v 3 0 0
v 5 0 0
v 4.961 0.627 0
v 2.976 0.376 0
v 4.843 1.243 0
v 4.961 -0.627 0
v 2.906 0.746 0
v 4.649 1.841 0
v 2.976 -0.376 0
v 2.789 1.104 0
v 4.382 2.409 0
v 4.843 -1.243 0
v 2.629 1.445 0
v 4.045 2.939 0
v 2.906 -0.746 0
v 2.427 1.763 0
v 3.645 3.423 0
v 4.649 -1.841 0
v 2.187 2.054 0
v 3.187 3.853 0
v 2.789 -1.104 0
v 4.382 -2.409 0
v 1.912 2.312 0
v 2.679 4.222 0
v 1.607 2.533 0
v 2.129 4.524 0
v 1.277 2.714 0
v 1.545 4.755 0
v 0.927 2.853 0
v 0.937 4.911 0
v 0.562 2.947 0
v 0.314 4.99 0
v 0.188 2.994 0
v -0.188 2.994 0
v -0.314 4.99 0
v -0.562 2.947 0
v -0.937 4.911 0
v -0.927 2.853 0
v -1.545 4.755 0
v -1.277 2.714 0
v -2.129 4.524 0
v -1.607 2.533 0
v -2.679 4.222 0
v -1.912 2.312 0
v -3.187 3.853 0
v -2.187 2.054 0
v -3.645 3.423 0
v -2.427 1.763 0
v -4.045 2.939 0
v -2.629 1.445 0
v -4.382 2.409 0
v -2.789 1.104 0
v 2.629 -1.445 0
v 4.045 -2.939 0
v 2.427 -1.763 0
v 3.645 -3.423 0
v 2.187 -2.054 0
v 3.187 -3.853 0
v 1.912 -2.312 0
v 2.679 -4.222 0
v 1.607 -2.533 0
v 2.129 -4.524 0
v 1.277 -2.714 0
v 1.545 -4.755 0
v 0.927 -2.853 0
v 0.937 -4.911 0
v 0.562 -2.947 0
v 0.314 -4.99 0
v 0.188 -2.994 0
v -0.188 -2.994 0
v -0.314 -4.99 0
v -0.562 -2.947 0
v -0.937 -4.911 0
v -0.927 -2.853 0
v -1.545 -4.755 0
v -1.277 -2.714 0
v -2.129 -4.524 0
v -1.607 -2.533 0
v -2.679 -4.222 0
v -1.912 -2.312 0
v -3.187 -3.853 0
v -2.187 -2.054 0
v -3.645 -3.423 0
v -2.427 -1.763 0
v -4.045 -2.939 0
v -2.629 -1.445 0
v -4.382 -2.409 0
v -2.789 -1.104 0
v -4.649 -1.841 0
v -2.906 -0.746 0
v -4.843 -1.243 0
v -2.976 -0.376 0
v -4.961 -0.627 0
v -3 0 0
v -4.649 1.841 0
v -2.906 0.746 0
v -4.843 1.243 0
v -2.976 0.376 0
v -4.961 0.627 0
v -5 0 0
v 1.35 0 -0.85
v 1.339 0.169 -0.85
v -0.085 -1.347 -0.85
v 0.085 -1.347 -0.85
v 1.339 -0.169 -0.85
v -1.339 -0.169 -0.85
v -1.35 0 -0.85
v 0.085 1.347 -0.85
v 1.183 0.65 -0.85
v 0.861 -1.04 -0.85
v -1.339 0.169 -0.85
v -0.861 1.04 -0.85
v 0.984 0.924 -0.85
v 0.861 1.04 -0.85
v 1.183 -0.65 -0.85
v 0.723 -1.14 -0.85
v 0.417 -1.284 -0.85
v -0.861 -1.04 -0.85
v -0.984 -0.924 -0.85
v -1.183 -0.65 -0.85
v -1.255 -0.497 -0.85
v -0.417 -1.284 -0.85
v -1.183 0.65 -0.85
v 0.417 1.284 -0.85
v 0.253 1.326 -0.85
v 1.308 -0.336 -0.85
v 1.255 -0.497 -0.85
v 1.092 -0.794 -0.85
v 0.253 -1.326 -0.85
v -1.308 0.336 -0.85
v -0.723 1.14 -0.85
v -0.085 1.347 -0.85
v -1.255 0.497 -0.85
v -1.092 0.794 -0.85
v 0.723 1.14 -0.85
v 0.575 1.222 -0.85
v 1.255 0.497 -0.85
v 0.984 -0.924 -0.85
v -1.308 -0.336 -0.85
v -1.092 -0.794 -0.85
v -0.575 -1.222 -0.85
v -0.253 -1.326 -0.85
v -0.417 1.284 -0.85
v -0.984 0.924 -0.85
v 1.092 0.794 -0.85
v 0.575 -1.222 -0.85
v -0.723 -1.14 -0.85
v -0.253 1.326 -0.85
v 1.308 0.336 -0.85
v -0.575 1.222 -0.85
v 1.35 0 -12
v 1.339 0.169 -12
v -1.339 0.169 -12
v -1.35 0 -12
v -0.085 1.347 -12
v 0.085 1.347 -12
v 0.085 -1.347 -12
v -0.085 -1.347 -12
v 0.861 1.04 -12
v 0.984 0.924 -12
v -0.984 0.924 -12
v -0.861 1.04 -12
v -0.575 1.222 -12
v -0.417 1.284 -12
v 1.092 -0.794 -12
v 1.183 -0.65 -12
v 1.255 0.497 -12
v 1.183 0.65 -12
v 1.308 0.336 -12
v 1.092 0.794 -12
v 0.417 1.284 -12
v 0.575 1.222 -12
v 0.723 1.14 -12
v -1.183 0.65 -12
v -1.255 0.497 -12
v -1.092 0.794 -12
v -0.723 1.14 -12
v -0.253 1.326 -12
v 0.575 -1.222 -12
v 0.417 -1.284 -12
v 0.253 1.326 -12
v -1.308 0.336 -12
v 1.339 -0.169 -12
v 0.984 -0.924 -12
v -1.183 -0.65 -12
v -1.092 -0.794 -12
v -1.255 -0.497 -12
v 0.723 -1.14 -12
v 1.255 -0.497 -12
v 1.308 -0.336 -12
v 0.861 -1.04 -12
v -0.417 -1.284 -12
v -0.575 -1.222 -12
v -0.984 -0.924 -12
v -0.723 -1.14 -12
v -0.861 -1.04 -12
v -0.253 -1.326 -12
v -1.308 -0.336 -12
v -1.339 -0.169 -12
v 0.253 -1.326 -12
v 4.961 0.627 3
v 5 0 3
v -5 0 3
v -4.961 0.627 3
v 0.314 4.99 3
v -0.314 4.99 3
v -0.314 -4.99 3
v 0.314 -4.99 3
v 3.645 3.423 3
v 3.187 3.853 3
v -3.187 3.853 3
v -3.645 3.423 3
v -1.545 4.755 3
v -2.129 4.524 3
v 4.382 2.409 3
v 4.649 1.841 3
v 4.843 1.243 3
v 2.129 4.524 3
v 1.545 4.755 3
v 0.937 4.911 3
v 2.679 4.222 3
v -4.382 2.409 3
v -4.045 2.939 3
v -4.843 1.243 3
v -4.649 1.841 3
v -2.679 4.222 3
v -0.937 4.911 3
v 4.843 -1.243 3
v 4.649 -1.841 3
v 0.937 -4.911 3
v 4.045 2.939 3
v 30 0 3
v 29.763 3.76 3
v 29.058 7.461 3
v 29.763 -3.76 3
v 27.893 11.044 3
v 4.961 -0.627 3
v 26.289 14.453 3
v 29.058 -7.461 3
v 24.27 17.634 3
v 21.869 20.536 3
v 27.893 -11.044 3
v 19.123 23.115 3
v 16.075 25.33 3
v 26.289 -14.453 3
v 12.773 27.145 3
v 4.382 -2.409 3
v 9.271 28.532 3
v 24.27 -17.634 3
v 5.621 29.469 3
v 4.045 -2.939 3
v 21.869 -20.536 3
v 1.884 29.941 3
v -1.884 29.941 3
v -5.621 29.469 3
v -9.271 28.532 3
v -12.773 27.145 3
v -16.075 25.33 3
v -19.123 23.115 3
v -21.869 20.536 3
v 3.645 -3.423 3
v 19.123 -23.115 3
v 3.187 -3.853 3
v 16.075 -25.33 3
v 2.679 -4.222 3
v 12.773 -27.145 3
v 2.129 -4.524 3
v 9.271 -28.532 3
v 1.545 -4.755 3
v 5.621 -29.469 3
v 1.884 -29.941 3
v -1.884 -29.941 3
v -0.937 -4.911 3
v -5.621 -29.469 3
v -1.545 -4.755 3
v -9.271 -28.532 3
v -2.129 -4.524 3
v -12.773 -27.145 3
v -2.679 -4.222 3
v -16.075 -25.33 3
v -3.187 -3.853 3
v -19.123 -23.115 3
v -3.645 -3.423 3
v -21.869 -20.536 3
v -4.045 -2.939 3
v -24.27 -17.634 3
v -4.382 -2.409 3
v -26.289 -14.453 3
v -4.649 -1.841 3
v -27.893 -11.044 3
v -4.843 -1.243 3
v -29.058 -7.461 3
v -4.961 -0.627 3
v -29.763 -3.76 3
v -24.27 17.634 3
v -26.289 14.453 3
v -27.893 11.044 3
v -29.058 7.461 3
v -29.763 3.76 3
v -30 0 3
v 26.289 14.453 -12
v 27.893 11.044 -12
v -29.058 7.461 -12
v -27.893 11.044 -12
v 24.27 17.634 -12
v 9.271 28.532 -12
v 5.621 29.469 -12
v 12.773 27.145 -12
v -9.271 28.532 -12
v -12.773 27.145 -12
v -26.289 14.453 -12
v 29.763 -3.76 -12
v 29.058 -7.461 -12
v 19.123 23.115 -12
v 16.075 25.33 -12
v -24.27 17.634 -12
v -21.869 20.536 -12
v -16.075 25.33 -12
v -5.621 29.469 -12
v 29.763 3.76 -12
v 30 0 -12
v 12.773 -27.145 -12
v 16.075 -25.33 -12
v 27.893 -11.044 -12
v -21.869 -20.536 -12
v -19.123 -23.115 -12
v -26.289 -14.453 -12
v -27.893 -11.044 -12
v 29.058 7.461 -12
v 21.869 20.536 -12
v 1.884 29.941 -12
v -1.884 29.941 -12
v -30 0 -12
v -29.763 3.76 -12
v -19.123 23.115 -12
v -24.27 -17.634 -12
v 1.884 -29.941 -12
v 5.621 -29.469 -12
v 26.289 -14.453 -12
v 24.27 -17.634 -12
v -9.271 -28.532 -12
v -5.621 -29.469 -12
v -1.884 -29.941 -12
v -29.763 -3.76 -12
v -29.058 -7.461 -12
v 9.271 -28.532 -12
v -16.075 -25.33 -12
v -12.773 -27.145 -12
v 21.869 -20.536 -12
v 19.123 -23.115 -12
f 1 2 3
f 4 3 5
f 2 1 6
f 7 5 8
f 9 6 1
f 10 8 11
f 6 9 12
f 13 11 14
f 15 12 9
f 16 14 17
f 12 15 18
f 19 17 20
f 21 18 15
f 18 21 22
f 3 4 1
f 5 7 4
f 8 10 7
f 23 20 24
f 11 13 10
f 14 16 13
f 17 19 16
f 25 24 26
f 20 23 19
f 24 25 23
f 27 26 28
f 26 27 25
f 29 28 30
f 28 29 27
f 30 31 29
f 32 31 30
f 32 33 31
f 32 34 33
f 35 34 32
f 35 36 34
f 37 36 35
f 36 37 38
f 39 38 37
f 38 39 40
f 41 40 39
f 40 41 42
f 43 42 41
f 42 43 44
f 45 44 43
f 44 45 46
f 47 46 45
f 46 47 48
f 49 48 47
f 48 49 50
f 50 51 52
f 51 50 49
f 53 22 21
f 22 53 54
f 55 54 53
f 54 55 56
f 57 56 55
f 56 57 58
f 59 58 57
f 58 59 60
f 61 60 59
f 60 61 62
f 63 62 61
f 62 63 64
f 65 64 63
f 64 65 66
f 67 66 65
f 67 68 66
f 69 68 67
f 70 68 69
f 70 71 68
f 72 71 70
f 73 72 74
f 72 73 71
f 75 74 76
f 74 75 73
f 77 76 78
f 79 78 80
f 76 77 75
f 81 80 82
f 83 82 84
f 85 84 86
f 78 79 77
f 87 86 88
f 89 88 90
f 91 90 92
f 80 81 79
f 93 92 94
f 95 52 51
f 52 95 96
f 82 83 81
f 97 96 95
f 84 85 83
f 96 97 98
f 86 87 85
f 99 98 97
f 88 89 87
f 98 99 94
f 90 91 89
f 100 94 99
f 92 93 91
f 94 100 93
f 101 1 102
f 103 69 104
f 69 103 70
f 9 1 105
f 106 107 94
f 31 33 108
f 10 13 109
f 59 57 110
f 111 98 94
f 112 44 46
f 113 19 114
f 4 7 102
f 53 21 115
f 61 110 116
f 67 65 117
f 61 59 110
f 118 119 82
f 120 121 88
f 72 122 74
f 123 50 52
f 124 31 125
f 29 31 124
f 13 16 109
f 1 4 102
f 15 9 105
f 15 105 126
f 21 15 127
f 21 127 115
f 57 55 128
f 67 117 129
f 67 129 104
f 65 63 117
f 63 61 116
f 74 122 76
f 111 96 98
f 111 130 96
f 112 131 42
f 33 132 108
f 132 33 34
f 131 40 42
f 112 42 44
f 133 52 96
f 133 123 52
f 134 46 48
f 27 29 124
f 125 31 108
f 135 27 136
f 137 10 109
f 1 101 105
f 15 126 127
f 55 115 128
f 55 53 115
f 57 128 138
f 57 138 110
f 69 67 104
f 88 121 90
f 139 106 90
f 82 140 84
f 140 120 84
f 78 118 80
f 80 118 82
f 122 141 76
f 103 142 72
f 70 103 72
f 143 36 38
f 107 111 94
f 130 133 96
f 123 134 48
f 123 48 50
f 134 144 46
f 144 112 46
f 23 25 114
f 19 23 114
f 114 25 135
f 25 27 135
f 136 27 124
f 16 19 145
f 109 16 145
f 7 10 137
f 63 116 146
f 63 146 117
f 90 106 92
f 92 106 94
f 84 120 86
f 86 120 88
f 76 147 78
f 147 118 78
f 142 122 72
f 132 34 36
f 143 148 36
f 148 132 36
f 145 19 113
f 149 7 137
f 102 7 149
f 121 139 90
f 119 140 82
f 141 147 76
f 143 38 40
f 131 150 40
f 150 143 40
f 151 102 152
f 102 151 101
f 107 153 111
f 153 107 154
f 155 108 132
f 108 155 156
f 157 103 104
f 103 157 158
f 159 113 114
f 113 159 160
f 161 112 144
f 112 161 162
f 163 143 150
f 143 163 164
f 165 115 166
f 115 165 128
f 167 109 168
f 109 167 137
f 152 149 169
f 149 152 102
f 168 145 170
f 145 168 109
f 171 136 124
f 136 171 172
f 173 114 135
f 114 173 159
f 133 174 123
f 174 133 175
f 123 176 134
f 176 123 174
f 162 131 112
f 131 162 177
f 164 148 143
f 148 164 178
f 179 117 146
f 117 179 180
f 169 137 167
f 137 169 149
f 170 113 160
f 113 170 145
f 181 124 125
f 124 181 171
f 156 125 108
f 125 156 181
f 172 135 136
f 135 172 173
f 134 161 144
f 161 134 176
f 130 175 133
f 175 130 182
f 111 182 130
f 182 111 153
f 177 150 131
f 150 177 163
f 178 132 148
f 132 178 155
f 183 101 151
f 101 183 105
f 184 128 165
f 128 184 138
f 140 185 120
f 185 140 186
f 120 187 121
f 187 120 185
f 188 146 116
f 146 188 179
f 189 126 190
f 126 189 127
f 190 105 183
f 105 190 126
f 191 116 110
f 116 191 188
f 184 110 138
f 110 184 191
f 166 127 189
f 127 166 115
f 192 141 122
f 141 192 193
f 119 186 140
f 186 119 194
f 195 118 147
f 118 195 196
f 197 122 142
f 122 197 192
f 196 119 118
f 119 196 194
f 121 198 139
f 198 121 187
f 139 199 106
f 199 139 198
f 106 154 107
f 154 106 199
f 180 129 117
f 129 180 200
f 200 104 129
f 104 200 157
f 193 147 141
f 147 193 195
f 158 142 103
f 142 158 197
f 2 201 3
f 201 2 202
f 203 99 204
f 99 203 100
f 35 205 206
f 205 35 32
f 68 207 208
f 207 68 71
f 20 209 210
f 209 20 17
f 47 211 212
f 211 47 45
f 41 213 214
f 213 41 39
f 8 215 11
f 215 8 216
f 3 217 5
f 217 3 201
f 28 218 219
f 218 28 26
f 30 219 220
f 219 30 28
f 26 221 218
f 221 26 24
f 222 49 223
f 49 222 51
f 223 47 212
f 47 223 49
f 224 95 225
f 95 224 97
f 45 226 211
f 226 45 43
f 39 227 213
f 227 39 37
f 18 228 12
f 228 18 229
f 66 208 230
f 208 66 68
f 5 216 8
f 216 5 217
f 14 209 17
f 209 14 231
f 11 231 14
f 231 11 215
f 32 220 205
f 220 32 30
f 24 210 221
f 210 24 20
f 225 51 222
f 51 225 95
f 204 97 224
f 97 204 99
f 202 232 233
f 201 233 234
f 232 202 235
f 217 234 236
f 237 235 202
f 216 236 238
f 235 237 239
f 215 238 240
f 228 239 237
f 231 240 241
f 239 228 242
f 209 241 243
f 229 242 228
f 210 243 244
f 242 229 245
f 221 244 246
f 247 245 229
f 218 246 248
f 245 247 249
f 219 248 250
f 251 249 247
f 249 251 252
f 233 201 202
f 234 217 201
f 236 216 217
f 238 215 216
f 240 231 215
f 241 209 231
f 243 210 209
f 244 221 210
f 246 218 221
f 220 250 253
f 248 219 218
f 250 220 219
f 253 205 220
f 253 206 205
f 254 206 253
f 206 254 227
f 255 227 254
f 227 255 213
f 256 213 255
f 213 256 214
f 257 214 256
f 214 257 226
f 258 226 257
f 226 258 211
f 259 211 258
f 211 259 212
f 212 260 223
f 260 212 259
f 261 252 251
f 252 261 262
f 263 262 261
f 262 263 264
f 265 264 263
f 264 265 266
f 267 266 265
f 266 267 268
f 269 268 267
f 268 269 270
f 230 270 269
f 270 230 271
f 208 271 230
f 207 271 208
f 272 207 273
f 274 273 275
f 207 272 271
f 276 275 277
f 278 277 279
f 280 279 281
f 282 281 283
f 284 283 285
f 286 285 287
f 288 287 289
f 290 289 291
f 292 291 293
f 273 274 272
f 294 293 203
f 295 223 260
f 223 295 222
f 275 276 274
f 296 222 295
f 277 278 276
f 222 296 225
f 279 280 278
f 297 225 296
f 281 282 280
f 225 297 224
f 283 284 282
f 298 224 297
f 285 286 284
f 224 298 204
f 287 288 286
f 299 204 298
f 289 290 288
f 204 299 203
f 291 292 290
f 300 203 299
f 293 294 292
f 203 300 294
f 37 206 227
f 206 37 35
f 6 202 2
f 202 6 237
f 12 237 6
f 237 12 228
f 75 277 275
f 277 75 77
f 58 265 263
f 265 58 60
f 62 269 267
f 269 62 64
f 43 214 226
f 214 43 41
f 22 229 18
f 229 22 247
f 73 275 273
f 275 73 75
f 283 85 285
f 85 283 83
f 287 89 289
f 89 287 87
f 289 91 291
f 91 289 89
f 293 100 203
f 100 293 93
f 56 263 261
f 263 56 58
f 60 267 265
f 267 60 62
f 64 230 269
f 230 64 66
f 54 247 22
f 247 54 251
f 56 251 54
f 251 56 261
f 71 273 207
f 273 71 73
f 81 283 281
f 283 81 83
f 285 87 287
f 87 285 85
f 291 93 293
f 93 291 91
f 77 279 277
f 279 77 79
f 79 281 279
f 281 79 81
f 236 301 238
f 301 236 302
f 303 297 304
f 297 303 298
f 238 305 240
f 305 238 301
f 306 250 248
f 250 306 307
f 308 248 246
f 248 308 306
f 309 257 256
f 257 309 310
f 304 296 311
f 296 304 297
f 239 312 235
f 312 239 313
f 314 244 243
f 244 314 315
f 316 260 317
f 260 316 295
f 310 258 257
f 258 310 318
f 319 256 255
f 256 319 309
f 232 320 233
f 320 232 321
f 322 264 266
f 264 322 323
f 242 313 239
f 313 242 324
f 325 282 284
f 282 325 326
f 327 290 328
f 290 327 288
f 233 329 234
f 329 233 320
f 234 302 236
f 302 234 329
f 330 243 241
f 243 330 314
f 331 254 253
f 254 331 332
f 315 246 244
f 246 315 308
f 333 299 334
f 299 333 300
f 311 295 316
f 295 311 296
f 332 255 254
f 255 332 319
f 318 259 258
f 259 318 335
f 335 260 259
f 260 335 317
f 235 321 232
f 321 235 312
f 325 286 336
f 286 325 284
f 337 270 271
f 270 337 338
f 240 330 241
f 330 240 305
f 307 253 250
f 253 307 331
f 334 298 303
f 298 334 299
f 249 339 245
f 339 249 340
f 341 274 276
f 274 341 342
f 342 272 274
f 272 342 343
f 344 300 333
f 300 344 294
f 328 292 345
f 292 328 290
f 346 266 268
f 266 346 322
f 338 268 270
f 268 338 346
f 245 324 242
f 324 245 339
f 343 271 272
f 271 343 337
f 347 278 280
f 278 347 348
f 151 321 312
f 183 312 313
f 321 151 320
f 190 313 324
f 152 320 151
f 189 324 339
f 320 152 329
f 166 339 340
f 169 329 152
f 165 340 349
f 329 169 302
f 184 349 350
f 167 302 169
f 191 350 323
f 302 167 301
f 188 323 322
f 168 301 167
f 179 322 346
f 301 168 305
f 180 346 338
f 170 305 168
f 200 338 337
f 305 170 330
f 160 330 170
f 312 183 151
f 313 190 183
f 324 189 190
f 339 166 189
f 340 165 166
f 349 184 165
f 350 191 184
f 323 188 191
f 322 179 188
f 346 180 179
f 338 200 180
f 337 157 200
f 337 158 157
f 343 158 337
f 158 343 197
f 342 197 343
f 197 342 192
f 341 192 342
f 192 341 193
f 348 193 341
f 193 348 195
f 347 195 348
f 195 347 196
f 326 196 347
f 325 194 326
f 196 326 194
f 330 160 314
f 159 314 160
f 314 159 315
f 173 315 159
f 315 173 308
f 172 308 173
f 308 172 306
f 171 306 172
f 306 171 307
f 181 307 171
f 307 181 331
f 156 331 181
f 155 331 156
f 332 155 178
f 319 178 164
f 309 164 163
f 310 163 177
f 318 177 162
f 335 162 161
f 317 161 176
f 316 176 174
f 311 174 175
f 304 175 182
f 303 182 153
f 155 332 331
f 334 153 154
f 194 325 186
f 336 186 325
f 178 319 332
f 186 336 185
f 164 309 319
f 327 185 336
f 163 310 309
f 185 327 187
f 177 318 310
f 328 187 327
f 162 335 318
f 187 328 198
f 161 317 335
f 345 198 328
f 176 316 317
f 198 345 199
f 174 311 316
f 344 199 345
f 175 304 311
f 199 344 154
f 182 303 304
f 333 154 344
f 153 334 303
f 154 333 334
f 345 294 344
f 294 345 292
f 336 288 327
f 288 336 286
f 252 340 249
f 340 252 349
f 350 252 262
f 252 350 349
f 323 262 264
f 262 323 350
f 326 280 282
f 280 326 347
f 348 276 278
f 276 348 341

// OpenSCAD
$fn = 50;

difference() {
	union() {
		translate(v = [0, 0, -12.0]) {
			cylinder(h = 15, r = 30.0);
		}
	}
	union() {
		translate(v = [0, 0, 0]) {
			rotate(a = [0, 0, 0]) {
				difference() {
					union() {
						translate(v = [0, 0, -15.0]) {
							cylinder(h = 15, r = 1.0);
						}
						translate(v = [0, 0, -0.85]) {
							cylinder(h = 0.85, r1 = 1.35, r2 = 3.0);
						}
						translate(v = [0, 0, -15.0]) {
							cylinder(h = 15, r = 1.35);
						}
						translate(v = [0, 0, -15.0]) {
							cylinder(h = 15, r = 1.0);
						}
					}
					union();
				}
			}
		}
		#cylinder(h = 3, r = 5.0);
	}
}
